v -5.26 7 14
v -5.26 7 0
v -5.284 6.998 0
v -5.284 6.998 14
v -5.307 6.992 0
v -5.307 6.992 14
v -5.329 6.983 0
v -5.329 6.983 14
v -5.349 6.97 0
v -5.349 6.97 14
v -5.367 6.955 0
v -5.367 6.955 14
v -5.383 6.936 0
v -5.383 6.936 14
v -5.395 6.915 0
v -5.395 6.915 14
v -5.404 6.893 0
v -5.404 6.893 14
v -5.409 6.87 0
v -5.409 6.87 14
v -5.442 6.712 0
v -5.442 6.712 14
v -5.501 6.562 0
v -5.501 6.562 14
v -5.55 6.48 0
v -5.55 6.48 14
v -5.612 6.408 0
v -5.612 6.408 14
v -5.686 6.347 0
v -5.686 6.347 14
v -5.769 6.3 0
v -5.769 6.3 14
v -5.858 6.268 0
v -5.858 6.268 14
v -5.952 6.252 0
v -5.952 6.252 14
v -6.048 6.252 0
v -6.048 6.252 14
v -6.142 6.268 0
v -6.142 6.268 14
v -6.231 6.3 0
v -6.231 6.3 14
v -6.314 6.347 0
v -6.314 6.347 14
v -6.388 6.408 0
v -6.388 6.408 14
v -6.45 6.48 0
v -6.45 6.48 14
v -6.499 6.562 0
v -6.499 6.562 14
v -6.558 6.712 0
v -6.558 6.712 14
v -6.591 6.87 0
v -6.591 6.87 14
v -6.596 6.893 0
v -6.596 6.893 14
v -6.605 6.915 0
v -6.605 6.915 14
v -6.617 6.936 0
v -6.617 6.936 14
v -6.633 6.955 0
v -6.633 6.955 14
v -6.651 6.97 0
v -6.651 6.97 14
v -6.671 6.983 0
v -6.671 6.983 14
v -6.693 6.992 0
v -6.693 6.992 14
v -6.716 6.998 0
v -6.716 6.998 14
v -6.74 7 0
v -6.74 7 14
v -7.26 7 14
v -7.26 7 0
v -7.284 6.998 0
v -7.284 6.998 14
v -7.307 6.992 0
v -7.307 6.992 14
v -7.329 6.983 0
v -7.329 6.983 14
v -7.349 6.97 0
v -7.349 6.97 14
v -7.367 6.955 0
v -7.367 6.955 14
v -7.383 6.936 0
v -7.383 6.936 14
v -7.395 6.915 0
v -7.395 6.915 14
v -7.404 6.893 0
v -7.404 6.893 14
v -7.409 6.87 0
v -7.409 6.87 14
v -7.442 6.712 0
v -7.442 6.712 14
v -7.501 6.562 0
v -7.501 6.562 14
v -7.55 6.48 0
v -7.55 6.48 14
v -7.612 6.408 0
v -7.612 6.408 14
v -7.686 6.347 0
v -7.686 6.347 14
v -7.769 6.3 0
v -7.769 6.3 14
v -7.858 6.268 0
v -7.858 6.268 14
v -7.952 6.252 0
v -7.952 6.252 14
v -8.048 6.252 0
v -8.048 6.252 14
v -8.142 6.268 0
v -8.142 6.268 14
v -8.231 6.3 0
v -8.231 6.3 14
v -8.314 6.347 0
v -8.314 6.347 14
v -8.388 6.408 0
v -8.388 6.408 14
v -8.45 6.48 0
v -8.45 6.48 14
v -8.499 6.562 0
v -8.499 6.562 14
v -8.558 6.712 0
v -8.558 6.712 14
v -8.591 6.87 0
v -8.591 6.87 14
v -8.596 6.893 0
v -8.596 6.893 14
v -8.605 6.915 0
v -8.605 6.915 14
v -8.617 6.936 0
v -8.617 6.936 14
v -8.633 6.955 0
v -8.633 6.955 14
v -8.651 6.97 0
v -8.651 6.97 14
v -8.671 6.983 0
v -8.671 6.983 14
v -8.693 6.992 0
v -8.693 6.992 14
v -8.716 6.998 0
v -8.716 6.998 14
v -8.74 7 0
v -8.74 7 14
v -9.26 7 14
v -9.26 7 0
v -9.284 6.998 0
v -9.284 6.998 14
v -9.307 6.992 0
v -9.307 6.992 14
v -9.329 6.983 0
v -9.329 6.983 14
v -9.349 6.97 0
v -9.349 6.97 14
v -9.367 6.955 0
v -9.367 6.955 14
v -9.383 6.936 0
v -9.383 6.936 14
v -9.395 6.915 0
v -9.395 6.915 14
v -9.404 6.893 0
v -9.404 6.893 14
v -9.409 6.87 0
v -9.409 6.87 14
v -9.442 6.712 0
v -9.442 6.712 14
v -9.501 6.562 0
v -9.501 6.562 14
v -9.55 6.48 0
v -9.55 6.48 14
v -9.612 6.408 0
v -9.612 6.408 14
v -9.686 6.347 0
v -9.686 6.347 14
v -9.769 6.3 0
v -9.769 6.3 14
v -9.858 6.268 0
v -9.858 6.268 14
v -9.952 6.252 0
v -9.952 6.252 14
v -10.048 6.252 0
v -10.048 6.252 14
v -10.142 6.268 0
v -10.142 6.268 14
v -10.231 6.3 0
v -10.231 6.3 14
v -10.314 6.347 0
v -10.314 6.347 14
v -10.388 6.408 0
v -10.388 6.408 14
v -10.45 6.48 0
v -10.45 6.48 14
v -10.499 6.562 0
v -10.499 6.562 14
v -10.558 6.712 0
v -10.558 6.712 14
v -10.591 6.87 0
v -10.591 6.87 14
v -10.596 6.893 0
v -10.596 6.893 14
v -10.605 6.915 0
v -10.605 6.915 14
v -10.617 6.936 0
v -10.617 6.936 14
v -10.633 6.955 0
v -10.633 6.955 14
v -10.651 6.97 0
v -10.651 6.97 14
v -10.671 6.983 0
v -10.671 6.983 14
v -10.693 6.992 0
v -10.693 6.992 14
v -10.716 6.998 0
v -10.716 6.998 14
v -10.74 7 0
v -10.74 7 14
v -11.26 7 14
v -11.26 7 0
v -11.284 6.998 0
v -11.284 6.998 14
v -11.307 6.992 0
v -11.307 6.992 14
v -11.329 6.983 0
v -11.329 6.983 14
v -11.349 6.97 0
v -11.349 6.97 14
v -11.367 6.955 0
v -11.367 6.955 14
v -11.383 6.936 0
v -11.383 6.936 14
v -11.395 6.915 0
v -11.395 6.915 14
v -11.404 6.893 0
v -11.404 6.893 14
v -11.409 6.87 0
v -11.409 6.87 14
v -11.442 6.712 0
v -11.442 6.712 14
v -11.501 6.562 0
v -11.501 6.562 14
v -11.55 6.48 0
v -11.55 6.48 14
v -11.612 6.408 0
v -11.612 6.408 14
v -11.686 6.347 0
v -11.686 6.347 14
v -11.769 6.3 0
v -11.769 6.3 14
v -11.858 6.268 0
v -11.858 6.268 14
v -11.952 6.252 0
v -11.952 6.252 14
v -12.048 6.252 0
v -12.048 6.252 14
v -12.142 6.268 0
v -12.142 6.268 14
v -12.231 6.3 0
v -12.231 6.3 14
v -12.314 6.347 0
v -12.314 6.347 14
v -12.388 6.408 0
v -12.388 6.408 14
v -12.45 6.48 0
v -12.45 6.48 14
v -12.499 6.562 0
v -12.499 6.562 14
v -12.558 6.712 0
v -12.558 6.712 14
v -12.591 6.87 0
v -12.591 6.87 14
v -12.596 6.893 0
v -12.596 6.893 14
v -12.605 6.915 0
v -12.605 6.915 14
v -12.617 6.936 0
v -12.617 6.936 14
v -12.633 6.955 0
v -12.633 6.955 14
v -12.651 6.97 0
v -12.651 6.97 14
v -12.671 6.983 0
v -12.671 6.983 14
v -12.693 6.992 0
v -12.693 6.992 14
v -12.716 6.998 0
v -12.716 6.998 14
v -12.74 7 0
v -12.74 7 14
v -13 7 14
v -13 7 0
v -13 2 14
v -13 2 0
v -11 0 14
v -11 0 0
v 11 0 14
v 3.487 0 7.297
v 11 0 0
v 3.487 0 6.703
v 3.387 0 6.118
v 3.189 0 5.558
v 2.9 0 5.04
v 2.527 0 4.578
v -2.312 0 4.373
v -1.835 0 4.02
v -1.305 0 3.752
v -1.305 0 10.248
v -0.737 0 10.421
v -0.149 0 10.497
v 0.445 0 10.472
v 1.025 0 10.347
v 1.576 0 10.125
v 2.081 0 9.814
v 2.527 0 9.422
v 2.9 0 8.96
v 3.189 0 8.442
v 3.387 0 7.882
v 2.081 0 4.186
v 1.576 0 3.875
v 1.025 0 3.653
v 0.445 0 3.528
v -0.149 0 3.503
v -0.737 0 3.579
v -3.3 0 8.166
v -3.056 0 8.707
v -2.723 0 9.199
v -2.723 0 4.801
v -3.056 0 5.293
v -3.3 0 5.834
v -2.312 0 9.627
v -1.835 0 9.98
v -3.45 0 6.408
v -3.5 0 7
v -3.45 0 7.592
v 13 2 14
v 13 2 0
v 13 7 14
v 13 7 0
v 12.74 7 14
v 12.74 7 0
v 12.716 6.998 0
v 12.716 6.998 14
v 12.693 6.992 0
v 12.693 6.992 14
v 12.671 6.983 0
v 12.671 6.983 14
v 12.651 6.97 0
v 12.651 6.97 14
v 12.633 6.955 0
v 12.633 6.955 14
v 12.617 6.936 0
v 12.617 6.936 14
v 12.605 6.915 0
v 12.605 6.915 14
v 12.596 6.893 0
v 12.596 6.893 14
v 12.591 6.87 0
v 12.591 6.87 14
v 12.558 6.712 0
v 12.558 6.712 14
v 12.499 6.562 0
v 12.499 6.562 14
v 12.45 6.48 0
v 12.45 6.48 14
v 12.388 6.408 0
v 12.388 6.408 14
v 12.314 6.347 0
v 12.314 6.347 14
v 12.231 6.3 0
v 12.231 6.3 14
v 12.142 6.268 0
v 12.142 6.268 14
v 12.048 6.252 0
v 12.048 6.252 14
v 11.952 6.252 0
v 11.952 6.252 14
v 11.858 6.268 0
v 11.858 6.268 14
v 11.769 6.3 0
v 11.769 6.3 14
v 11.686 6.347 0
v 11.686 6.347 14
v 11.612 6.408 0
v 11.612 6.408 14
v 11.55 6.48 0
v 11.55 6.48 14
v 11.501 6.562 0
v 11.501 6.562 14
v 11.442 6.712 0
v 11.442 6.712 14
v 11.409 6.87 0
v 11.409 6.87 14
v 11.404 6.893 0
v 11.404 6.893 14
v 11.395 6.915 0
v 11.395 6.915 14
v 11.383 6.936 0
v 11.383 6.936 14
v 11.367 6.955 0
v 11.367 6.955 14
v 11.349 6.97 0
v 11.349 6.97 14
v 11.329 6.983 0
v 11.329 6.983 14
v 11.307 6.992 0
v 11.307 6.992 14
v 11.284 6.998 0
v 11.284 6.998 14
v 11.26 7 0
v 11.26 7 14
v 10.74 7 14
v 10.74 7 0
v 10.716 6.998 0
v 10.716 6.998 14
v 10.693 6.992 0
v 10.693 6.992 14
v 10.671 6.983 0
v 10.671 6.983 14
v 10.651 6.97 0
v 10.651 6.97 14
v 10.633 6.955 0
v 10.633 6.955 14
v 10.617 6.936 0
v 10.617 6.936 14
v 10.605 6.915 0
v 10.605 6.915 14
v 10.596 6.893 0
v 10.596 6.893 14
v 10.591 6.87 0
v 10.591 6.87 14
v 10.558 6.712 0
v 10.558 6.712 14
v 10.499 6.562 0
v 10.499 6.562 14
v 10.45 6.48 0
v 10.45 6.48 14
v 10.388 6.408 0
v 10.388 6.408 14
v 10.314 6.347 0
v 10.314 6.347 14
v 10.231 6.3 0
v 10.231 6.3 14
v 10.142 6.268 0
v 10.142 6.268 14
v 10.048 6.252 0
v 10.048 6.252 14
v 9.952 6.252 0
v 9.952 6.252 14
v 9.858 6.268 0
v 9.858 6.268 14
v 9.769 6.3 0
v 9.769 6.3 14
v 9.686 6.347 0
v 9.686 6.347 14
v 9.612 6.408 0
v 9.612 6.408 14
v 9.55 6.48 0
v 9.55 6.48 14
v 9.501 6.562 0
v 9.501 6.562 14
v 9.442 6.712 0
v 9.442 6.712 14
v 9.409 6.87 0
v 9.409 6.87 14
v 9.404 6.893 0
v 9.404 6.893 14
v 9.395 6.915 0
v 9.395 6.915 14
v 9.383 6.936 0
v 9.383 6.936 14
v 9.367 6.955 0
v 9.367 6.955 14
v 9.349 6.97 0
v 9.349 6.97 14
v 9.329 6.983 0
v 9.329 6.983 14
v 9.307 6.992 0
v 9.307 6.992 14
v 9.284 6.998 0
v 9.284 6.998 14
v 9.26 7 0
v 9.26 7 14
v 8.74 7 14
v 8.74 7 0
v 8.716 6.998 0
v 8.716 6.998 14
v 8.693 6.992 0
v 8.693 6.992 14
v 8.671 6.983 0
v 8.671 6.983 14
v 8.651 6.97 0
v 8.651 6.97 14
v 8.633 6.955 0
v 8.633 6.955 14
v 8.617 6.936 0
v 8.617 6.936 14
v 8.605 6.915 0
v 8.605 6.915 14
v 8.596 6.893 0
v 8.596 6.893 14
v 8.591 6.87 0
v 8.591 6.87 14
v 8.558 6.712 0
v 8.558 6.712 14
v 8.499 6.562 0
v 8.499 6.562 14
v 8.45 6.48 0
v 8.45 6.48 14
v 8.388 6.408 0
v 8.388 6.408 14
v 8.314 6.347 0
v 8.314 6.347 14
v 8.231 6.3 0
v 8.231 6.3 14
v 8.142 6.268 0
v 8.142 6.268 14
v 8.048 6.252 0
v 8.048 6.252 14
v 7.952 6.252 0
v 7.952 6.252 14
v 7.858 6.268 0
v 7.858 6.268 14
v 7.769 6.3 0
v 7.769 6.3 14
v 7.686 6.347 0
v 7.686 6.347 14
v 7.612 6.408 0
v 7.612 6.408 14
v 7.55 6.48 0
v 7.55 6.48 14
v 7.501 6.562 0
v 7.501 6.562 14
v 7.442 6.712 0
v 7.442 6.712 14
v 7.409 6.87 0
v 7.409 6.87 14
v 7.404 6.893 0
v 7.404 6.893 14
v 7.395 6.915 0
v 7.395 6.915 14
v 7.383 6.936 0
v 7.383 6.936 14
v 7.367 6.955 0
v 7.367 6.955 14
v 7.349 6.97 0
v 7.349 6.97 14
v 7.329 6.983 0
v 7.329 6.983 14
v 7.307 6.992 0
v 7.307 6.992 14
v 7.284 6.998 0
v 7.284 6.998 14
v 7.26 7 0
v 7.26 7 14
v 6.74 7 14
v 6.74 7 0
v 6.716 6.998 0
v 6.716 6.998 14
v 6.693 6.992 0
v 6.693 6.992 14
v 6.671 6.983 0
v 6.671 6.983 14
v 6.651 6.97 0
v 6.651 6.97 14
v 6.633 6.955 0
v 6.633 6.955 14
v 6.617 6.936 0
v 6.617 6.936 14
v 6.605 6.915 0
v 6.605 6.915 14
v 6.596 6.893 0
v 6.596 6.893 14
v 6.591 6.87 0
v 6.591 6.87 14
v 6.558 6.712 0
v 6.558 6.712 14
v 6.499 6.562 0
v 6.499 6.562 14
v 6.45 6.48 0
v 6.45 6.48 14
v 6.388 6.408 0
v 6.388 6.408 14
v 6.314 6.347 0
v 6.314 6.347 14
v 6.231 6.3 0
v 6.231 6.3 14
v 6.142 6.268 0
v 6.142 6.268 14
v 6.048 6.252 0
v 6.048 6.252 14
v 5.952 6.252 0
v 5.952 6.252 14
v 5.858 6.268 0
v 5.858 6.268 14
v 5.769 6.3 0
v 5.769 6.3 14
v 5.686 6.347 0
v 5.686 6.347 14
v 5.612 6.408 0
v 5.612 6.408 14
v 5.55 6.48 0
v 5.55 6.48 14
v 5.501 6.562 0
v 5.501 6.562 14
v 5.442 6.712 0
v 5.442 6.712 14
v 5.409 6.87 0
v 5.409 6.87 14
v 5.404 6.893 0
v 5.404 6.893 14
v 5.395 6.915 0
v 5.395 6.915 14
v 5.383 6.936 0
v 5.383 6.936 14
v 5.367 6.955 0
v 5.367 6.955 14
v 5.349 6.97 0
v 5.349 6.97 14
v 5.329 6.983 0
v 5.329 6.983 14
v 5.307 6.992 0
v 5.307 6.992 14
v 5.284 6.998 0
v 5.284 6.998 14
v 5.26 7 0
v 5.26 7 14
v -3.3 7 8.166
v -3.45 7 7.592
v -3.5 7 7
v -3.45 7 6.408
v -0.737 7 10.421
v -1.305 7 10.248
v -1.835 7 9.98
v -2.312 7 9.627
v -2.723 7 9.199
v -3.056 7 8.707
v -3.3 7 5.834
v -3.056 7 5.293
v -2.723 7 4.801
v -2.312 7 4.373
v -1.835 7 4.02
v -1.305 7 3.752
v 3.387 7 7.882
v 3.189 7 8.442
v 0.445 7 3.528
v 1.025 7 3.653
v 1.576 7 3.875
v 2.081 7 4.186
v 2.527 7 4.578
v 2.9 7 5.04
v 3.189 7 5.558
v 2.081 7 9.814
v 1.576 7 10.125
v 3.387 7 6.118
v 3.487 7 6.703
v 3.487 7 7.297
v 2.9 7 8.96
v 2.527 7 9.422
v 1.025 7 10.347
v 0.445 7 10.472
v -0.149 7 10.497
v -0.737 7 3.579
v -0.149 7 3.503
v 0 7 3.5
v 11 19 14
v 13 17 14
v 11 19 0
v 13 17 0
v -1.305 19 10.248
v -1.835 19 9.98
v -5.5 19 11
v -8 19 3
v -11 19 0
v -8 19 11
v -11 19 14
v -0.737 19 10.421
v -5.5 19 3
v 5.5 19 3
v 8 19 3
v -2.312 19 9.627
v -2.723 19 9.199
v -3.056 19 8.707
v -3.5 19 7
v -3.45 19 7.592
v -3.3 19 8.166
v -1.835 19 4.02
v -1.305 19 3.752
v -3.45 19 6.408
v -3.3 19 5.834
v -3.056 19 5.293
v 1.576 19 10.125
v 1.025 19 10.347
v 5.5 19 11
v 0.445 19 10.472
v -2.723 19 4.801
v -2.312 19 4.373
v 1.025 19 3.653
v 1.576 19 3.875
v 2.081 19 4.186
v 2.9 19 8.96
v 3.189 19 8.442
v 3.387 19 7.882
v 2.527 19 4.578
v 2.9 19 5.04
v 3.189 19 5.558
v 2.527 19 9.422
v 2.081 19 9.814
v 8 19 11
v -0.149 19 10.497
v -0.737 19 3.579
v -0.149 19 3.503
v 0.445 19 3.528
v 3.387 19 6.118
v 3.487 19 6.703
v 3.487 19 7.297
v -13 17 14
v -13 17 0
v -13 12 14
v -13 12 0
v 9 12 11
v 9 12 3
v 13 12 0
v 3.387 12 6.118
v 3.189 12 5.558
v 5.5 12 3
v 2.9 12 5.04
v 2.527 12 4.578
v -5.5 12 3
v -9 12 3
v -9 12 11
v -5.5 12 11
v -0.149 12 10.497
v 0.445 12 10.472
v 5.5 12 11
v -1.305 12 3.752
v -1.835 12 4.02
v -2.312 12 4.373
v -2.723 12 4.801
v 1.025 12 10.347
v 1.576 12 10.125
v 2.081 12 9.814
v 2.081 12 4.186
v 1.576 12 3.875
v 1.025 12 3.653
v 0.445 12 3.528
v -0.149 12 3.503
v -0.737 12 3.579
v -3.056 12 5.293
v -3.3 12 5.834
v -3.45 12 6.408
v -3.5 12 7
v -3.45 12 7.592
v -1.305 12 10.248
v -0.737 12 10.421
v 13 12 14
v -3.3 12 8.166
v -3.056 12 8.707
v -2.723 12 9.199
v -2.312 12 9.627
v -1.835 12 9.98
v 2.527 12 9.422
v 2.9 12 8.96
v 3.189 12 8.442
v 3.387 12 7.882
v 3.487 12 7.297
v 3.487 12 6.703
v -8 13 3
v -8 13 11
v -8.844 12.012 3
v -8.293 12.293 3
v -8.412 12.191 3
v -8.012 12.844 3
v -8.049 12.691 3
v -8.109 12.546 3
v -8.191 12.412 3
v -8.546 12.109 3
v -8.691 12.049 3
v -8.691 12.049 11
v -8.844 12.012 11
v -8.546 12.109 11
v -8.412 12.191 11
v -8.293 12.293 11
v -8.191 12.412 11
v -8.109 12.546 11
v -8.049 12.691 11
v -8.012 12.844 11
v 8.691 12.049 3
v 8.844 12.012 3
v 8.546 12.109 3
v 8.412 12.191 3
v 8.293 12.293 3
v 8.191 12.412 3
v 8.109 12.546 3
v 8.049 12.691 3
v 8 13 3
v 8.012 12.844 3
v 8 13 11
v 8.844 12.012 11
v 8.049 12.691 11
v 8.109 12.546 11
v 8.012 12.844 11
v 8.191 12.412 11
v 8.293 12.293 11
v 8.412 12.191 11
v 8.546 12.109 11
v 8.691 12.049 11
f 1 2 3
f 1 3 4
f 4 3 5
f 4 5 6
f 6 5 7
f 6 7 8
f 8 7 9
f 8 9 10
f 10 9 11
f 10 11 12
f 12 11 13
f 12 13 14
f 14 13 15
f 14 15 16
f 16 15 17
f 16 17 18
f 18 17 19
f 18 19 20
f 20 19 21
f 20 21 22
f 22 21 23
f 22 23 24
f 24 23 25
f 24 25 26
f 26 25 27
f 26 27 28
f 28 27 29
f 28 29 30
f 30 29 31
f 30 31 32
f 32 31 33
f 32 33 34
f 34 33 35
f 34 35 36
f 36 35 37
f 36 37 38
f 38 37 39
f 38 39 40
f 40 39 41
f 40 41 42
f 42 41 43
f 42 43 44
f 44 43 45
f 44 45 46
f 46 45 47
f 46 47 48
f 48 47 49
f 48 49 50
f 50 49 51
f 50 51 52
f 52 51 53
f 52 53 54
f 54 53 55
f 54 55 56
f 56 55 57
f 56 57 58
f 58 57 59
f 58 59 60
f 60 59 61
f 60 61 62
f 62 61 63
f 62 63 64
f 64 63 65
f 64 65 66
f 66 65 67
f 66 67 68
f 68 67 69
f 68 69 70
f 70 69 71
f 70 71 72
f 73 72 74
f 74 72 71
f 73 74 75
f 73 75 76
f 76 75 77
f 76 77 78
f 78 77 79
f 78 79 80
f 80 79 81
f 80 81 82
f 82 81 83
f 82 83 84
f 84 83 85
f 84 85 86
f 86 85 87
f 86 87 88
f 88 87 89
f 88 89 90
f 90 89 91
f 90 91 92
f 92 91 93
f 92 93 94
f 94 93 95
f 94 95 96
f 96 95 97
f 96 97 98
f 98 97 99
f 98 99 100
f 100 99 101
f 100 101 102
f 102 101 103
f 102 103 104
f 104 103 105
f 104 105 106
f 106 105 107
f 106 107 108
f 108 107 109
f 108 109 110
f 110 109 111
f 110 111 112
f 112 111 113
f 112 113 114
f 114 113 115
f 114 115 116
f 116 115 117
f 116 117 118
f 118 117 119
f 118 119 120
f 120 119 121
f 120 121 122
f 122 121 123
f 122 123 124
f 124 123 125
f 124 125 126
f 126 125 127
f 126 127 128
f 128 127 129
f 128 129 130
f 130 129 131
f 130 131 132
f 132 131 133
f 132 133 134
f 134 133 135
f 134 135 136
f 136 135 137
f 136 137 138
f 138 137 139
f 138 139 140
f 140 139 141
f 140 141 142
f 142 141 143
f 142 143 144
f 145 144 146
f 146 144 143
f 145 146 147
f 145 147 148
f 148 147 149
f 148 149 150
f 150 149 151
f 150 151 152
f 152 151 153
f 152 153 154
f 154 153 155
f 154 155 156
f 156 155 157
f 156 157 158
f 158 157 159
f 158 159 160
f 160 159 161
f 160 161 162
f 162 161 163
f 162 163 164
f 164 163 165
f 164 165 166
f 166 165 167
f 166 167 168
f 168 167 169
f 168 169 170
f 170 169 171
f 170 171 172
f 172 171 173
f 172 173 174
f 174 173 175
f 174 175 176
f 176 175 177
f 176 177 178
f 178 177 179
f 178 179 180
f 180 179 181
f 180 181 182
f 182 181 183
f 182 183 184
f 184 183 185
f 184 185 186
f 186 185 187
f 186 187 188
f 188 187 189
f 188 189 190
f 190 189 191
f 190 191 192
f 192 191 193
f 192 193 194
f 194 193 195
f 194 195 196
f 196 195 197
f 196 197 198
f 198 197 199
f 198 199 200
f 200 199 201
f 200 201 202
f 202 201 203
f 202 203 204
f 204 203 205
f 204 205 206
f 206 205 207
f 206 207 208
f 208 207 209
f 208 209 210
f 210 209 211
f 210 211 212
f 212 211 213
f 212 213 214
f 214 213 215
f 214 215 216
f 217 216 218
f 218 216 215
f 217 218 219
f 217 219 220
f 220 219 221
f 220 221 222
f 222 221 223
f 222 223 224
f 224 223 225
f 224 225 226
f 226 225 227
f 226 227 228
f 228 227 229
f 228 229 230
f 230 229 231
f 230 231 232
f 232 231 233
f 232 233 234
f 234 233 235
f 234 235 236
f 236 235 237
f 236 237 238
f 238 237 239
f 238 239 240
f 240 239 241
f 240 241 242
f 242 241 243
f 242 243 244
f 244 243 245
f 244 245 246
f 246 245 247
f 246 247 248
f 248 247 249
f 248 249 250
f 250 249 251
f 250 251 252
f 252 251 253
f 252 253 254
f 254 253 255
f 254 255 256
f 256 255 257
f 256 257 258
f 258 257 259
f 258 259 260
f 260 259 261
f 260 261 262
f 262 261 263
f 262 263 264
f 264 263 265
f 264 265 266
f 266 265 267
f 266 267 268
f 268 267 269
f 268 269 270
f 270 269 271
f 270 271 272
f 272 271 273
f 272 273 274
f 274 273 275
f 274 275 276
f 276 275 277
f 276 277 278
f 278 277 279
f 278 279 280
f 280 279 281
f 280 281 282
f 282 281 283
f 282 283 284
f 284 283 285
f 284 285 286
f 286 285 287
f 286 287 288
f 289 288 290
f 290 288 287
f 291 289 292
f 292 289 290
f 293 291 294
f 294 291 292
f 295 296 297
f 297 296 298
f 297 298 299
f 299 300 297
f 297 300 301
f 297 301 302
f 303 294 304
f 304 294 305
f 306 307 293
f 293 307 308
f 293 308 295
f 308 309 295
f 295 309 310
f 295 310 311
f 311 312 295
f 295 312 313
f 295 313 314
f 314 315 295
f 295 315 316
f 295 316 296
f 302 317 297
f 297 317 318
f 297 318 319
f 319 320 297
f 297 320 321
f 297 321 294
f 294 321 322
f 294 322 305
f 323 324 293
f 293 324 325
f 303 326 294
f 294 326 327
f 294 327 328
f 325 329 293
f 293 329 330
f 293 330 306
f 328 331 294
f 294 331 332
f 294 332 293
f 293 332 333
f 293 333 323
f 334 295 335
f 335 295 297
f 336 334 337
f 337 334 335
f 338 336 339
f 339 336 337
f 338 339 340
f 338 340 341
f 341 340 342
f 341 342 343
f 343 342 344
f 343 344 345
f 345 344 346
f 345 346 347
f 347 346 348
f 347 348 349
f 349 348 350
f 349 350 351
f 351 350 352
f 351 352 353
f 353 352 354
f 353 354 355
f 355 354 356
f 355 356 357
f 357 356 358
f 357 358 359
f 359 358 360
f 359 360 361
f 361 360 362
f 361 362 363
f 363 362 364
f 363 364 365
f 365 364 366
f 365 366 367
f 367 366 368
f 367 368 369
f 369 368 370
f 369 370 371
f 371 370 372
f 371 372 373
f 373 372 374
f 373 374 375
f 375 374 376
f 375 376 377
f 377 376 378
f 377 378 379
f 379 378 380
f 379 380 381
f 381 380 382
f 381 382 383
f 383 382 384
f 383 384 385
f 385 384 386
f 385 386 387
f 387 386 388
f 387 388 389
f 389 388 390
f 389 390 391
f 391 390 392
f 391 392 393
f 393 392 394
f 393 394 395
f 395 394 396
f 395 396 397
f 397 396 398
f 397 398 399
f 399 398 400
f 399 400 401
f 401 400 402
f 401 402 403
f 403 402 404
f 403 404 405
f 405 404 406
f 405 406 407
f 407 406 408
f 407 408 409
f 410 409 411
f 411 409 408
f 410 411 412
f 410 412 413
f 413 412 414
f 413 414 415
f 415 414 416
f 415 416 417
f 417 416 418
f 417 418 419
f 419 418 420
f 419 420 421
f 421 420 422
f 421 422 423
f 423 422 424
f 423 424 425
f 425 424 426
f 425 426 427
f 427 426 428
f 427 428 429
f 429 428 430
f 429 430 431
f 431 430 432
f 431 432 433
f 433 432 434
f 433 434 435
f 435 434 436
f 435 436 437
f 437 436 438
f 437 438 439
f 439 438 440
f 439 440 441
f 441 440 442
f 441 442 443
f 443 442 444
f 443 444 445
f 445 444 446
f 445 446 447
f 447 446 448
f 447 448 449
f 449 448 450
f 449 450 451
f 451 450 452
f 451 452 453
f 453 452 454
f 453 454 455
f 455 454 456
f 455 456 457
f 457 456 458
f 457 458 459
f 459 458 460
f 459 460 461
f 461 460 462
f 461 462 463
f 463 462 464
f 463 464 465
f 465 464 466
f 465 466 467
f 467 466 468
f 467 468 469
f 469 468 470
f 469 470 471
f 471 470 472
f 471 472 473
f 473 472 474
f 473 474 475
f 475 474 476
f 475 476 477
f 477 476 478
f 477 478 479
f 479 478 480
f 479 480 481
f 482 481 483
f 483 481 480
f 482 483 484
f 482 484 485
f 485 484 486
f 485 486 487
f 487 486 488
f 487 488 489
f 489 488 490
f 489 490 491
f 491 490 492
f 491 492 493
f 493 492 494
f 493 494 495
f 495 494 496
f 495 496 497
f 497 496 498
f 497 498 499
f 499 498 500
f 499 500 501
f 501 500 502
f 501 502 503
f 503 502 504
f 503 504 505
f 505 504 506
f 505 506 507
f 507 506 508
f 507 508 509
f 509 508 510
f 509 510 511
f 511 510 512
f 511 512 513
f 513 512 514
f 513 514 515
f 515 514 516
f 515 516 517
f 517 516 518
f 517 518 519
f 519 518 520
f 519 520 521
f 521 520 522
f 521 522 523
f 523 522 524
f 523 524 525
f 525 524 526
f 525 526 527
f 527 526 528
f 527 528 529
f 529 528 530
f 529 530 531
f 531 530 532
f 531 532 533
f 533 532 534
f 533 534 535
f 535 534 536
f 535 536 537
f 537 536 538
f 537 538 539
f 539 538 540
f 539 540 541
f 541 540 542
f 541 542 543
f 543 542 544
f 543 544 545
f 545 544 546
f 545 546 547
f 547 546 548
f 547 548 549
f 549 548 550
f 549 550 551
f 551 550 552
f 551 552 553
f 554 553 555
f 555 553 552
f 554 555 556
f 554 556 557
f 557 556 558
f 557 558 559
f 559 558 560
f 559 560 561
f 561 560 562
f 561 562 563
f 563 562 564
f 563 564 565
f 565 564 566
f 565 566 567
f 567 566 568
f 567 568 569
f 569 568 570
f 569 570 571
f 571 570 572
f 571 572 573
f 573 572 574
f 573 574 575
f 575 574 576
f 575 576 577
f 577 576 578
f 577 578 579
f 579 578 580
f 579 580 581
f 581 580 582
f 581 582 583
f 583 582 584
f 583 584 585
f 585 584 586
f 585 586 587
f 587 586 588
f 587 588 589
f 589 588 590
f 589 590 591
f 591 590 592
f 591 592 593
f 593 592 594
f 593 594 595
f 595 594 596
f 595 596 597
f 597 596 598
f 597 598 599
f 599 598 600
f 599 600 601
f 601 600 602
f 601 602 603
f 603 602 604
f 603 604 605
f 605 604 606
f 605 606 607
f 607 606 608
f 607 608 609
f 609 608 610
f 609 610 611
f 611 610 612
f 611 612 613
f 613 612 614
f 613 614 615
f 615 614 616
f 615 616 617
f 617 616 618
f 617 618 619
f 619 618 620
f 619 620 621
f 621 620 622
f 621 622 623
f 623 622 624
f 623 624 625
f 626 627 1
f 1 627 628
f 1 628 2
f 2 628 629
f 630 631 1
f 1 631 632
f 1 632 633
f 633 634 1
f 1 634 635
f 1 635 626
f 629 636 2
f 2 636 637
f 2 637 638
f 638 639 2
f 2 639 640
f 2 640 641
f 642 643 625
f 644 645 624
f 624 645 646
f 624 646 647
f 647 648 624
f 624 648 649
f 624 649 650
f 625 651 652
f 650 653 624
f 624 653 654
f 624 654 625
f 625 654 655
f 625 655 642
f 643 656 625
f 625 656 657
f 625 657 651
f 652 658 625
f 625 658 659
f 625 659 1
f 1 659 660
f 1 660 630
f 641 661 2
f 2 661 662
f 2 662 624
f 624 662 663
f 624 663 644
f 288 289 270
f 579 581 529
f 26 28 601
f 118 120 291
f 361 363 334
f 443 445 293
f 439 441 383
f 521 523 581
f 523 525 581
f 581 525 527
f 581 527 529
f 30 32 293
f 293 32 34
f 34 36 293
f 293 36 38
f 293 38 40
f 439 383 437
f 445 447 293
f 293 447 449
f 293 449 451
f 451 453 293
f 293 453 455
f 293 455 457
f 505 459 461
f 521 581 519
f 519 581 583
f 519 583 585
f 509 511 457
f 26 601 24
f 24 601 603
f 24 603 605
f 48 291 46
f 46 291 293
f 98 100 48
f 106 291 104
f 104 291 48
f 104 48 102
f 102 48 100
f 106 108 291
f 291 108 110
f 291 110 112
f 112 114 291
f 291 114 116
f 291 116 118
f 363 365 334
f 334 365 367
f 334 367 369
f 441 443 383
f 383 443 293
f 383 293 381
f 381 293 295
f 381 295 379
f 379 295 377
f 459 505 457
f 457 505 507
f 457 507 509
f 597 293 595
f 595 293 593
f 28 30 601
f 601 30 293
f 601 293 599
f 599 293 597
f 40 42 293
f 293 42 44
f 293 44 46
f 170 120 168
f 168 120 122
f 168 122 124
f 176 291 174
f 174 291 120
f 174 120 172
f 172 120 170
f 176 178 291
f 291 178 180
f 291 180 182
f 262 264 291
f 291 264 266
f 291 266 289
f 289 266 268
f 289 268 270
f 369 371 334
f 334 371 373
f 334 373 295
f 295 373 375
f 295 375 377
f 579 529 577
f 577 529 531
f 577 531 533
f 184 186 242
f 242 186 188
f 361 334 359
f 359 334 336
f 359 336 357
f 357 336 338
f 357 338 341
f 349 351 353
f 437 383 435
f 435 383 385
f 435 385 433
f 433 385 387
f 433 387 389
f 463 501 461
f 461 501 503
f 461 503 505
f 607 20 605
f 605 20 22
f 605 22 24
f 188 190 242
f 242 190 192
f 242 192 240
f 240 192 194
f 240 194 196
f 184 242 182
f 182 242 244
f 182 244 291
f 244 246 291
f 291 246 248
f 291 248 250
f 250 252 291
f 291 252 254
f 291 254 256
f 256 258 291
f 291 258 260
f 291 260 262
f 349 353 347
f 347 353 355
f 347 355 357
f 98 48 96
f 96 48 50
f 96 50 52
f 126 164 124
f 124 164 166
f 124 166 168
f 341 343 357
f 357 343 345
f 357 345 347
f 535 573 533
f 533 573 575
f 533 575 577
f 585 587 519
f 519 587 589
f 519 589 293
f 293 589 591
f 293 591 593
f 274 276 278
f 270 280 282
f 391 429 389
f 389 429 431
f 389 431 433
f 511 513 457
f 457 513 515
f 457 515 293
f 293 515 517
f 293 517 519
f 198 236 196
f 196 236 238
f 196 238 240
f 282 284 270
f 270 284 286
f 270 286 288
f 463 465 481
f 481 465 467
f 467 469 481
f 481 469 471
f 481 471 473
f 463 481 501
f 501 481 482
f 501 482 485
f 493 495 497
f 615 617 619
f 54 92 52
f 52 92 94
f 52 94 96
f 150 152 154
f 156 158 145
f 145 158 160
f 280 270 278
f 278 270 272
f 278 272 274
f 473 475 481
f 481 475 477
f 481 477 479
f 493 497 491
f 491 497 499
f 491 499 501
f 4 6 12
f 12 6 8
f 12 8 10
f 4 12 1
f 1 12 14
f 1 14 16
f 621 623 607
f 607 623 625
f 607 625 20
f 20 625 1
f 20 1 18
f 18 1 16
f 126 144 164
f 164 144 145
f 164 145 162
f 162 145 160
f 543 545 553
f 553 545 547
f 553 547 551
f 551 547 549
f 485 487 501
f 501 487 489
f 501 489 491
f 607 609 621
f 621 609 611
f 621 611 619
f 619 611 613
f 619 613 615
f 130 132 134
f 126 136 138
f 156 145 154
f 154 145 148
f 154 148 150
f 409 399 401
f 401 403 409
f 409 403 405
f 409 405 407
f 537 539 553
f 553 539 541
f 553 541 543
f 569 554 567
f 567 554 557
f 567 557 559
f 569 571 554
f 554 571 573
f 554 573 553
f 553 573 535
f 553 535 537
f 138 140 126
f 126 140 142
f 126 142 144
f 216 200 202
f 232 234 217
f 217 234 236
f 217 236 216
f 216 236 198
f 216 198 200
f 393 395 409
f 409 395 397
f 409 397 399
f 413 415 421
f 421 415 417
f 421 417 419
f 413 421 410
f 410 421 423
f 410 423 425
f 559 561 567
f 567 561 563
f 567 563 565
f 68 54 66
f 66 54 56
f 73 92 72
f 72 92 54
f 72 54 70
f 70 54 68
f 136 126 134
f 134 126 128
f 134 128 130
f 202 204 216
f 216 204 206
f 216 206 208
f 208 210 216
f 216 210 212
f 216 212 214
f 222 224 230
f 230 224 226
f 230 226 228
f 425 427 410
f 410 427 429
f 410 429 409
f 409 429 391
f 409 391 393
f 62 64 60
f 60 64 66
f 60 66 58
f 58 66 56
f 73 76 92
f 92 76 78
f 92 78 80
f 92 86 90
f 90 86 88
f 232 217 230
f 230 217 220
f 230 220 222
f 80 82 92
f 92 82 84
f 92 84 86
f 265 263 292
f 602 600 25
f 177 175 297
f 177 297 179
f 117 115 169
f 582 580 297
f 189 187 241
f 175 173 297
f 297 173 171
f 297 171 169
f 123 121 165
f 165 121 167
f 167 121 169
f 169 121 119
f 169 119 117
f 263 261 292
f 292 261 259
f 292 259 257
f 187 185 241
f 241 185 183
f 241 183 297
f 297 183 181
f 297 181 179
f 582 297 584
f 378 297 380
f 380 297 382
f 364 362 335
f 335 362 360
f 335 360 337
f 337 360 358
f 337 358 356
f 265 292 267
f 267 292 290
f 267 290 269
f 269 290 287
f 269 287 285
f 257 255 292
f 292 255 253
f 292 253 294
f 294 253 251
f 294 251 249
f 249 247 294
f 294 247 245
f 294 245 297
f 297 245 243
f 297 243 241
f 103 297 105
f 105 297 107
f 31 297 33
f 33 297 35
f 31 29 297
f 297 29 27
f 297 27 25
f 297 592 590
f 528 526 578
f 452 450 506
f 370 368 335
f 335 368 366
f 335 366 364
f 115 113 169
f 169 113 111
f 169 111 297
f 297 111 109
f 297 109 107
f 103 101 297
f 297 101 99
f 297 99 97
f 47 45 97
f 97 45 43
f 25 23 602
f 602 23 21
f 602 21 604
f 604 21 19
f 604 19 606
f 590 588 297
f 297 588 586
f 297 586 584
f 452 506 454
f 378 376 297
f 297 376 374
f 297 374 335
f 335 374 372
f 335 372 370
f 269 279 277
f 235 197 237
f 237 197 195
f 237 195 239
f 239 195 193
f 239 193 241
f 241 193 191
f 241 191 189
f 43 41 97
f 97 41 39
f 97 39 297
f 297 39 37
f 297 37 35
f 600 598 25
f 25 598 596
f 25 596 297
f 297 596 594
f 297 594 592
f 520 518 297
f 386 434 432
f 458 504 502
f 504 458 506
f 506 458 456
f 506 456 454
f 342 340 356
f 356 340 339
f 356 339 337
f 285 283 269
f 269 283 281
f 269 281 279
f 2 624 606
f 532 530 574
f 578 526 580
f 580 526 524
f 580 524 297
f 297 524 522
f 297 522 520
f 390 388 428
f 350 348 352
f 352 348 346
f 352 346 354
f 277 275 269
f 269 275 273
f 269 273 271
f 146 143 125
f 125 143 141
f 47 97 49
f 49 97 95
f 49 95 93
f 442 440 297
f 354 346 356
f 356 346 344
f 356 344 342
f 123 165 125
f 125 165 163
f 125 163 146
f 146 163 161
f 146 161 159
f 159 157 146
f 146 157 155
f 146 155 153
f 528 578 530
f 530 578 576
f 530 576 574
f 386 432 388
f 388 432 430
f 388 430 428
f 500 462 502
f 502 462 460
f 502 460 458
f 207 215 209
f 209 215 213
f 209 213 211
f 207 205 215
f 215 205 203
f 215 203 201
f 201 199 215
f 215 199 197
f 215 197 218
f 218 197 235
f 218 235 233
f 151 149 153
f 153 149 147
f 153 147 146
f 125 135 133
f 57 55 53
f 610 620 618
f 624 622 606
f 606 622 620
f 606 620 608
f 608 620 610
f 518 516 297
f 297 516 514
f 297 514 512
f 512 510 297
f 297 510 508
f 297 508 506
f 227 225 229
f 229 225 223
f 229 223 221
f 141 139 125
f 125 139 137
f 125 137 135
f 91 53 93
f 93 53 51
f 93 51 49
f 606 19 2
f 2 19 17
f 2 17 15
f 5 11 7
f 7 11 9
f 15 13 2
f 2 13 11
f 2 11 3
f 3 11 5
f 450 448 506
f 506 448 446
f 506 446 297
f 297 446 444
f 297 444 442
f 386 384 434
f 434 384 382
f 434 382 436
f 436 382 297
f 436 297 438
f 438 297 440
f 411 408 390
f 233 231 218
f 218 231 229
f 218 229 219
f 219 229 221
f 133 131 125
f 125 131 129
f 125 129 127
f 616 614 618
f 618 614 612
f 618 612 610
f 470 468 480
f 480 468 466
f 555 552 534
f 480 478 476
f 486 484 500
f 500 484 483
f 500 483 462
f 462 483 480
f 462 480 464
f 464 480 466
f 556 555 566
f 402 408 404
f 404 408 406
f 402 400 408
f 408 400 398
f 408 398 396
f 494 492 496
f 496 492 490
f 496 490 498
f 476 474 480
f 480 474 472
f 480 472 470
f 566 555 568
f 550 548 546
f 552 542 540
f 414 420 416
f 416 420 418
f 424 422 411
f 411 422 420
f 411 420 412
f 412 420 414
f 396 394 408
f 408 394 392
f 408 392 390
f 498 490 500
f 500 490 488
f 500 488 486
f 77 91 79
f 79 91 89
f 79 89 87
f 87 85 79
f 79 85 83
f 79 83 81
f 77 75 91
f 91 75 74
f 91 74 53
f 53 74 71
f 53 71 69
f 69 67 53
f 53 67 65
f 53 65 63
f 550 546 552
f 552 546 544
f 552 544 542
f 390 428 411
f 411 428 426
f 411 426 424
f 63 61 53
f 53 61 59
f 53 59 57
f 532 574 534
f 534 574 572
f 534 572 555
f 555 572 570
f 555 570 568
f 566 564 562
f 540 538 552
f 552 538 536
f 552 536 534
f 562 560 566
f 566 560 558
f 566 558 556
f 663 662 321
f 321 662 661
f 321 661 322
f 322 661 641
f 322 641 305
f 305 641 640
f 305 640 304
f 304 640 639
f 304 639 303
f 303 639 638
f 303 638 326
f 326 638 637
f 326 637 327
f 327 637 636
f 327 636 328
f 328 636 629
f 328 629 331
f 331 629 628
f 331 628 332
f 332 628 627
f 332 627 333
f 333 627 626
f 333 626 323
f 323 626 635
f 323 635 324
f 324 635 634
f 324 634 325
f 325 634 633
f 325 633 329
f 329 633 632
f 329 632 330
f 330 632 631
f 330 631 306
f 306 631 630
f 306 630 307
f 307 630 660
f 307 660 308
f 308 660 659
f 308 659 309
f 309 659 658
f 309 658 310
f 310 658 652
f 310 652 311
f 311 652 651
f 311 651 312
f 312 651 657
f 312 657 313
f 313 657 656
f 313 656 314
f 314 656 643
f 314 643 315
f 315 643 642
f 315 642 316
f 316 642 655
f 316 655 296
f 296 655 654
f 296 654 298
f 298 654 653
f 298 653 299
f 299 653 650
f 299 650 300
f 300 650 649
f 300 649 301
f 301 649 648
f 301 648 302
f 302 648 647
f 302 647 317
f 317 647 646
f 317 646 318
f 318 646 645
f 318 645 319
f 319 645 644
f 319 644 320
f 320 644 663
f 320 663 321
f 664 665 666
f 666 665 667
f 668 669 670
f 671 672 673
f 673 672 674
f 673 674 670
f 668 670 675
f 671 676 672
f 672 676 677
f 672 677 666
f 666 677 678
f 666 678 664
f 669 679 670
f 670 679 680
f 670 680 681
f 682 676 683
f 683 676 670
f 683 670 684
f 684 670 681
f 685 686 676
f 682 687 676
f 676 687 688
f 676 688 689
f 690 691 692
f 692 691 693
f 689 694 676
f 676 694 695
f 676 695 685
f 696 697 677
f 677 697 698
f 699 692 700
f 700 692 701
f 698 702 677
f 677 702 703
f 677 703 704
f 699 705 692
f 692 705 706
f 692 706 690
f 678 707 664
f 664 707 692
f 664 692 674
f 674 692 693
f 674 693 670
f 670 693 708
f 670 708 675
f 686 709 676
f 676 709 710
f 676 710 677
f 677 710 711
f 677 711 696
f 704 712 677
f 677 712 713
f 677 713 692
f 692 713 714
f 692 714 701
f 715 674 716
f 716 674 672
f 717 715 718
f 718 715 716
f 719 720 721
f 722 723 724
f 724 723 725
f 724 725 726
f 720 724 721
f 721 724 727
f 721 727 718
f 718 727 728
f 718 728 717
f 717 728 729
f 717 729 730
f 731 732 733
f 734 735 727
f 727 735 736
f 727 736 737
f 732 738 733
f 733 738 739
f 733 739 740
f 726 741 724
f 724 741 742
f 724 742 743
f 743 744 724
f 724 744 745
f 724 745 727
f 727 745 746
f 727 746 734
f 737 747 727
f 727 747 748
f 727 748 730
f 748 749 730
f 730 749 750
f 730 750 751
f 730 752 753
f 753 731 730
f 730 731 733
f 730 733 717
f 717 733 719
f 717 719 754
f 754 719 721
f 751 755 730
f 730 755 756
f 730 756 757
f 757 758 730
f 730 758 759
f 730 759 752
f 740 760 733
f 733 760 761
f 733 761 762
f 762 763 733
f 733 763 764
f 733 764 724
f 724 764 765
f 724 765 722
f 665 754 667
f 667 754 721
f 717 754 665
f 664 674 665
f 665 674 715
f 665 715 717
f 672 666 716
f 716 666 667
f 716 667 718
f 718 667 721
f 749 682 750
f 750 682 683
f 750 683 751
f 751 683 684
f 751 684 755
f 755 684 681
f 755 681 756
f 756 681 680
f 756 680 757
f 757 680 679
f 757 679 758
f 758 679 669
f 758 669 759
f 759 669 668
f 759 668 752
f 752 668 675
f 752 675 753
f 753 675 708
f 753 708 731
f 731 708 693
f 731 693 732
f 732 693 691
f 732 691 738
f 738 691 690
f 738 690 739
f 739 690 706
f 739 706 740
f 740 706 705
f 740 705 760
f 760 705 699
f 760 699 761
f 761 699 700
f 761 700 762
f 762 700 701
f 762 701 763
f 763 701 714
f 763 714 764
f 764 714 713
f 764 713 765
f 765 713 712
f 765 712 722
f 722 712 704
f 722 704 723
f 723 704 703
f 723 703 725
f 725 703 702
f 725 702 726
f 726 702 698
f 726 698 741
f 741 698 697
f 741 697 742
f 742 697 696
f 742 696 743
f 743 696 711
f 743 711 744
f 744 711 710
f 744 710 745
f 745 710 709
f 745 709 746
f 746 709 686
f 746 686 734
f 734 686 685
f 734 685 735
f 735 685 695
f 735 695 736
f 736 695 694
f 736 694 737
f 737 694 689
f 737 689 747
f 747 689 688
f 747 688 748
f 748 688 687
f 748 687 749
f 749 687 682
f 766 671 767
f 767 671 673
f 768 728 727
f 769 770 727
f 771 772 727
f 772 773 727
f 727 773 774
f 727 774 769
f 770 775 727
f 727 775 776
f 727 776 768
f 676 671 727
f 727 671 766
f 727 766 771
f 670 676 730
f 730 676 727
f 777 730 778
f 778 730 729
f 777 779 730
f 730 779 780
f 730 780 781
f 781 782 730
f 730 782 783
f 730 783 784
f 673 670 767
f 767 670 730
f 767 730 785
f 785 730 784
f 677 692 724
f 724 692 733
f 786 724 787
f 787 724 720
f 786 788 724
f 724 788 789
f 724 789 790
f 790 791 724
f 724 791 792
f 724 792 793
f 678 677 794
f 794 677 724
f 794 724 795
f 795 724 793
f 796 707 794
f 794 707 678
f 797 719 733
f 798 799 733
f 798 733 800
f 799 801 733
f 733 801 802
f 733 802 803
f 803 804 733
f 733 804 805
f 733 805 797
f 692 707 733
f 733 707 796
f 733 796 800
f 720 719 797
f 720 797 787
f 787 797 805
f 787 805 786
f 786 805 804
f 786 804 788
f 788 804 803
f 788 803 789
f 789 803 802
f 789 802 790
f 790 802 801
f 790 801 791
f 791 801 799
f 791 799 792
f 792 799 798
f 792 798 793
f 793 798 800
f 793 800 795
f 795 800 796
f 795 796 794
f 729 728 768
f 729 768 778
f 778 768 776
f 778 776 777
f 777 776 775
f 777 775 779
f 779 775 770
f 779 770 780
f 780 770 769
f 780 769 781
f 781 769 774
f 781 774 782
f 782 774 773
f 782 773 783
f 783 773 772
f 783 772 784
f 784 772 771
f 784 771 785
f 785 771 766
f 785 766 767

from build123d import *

# Parameters (mm, degrees)
SALIENTE_EXTRUIR1_DEPTH   = 14
SALIENTE_EXTRUIR1_2_DEPTH = 14
CROQUIS2_R                = 3.5
CORTAR_EXTRUIR1_DEPTH     = 27.944387171
CROQUIS3_W                = 2.5
CROQUIS3_H                = 8
CORTAR_EXTRUIR2_DEPTH     = 7
REDONDEO1_R               = 1


with BuildPart() as part:
    # Croquis1 → Saliente-Extruir1 (new body)
    with BuildSketch(Plane.XY):
        with BuildLine():
            Line((7.259824575, 7), (6.740175425, 7))
            ThreePointArc((6.740175425, 7), (6.641268354, 6.962771412), (6.591456891, 6.869565217))
            ThreePointArc((6.591456891, 6.869565217), (6.557611714, 6.711937846), (6.498876404, 6.561797753))
            ThreePointArc((6.498876404, 6.561797753), (6, 6.25), (5.501123596, 6.561797753))
            ThreePointArc((5.501123596, 6.561797753), (5.442388286, 6.711937846), (5.408543109, 6.869565217))
            ThreePointArc((5.408543109, 6.869565217), (5.358731646, 6.962771412), (5.259824575, 7))
            Line((5.259824575, 7), (5, 7))
            Line((5, 7), (-5, 7))
            Line((-5, 7), (-5.259824575, 7))
            ThreePointArc((-5.259824575, 7), (-5.358731646, 6.962771412), (-5.408543109, 6.869565217))
            ThreePointArc((-5.408543109, 6.869565217), (-5.442388286, 6.711937846), (-5.501123596, 6.561797753))
            ThreePointArc((-5.501123596, 6.561797753), (-6, 6.25), (-6.498876404, 6.561797753))
            ThreePointArc((-6.498876404, 6.561797753), (-6.557611714, 6.711937846), (-6.591456891, 6.869565217))
            ThreePointArc((-6.591456891, 6.869565217), (-6.641268354, 6.962771412), (-6.740175425, 7))
            Line((-6.740175425, 7), (-7.259824575, 7))
            ThreePointArc((-7.259824575, 7), (-7.358731646, 6.962771412), (-7.408543109, 6.869565217))
            ThreePointArc((-7.408543109, 6.869565217), (-7.442388286, 6.711937846), (-7.501123596, 6.561797753))
            ThreePointArc((-7.501123596, 6.561797753), (-8, 6.25), (-8.498876404, 6.561797753))
            ThreePointArc((-8.498876404, 6.561797753), (-8.557611714, 6.711937846), (-8.591456891, 6.869565217))
            ThreePointArc((-8.591456891, 6.869565217), (-8.641268354, 6.962771412), (-8.740175425, 7))
            Line((-8.740175425, 7), (-9, 7))
            Line((-9, 7), (-9.259824575, 7))
            ThreePointArc((-9.259824575, 7), (-9.358731646, 6.962771412), (-9.408543109, 6.869565217))
            ThreePointArc((-9.408543109, 6.869565217), (-9.442388286, 6.711937846), (-9.501123596, 6.561797753))
            ThreePointArc((-9.501123596, 6.561797753), (-10, 6.25), (-10.498876404, 6.561797753))
            ThreePointArc((-10.498876404, 6.561797753), (-10.557611714, 6.711937846), (-10.591456891, 6.869565217))
            ThreePointArc((-10.591456891, 6.869565217), (-10.641268354, 6.962771412), (-10.740175425, 7))
            Line((-10.740175425, 7), (-11.259824575, 7))
            ThreePointArc((-11.259824575, 7), (-11.358731646, 6.962771412), (-11.408543109, 6.869565217))
            ThreePointArc((-11.408543109, 6.869565217), (-11.442388286, 6.711937846), (-11.501123596, 6.561797753))
            ThreePointArc((-11.501123596, 6.561797753), (-12, 6.25), (-12.498876404, 6.561797753))
            ThreePointArc((-12.498876404, 6.561797753), (-12.557611714, 6.711937846), (-12.591456891, 6.869565217))
            ThreePointArc((-12.591456891, 6.869565217), (-12.641268354, 6.962771412), (-12.740175425, 7))
            Line((-12.740175425, 7), (-13, 7))
            Line((-13, 7), (-13, 2))
            Line((-13, 2), (-11, 0))
            Line((-11, 0), (11, 0))
            Line((11, 0), (13, 2))
            Line((13, 2), (13, 7))
            Line((13, 7), (12.740175425, 7))
            ThreePointArc((12.740175425, 7), (12.641268354, 6.962771412), (12.591456891, 6.869565217))
            ThreePointArc((12.591456891, 6.869565217), (12.557611714, 6.711937846), (12.498876404, 6.561797753))
            ThreePointArc((12.498876404, 6.561797753), (12, 6.25), (11.501123596, 6.561797753))
            ThreePointArc((11.501123596, 6.561797753), (11.442388286, 6.711937846), (11.408543109, 6.869565217))
            ThreePointArc((11.408543109, 6.869565217), (11.358731646, 6.962771412), (11.259824575, 7))
            Line((11.259824575, 7), (10.740175425, 7))
            ThreePointArc((10.740175425, 7), (10.641268354, 6.962771412), (10.591456891, 6.869565217))
            ThreePointArc((10.591456891, 6.869565217), (10.557611714, 6.711937846), (10.498876404, 6.561797753))
            ThreePointArc((10.498876404, 6.561797753), (10, 6.25), (9.501123596, 6.561797753))
            ThreePointArc((9.501123596, 6.561797753), (9.442388286, 6.711937846), (9.408543109, 6.869565217))
            ThreePointArc((9.408543109, 6.869565217), (9.358731646, 6.962771412), (9.259824575, 7))
            Line((9.259824575, 7), (9, 7))
            Line((9, 7), (8.740175425, 7))
            ThreePointArc((8.740175425, 7), (8.641268354, 6.962771412), (8.591456891, 6.869565217))
            ThreePointArc((8.591456891, 6.869565217), (8.557611714, 6.711937846), (8.498876404, 6.561797753))
            ThreePointArc((8.498876404, 6.561797753), (8, 6.25), (7.501123596, 6.561797753))
            ThreePointArc((7.501123596, 6.561797753), (7.442388286, 6.711937846), (7.408543109, 6.869565217))
            ThreePointArc((7.408543109, 6.869565217), (7.358731646, 6.962771412), (7.259824575, 7))
        make_face()
    extrude(amount=SALIENTE_EXTRUIR1_DEPTH)


with BuildPart() as body_2:
    # Croquis1 → Saliente-Extruir1 2 (new body)
    with BuildSketch(Plane.XY):
        Polygon((13, 17), (13, 12), (-13, 12), (-13, 17), (-11, 19), (11, 19), align=None)
    extrude(amount=SALIENTE_EXTRUIR1_2_DEPTH)


with BuildPart() as cortar_extruir1_tool:
    # Croquis2 → Cortar-Extruir1 (new, through all)
    with BuildSketch(Plane(origin=(0, 19, 0), x_dir=(1, 0, 0), z_dir=(0, 1, 0))):
        with Locations(Location((0, -7, 0), (0, 0, 180))):
            Circle(CROQUIS2_R)
    extrude(amount=-CORTAR_EXTRUIR1_DEPTH)


with BuildPart() as part_1:
    add(part.part)

    # Cortar-Extruir1: cut by cortar_extruir1_tool
    add(cortar_extruir1_tool.part, mode=Mode.SUBTRACT)


with BuildPart() as body_2_1:
    add(body_2.part)

    # Cortar-Extruir1: cut by cortar_extruir1_tool
    add(cortar_extruir1_tool.part, mode=Mode.SUBTRACT)

    # Croquis3 → Cortar-Extruir2 (cut)
    with BuildSketch(Plane(origin=(0, 19, 0), x_dir=(1, 0, 0), z_dir=(0, 1, 0))):
        with Locations((-6.75, -7)):
            Rectangle(CROQUIS3_W, CROQUIS3_H)
        with Locations((6.75, -7)):
            Rectangle(CROQUIS3_W, CROQUIS3_H)
    extrude(amount=-CORTAR_EXTRUIR2_DEPTH, mode=Mode.SUBTRACT)

    # Redondeo1
    redondeo1_edges = [body_2_1.edges().sort_by_distance(p)[0] for p in [
        (-8, 12, 7),
        (8, 12, 7),
    ]]
    fillet(redondeo1_edges, radius=REDONDEO1_R)


solid = Compound([part_1.part, body_2_1.part])
